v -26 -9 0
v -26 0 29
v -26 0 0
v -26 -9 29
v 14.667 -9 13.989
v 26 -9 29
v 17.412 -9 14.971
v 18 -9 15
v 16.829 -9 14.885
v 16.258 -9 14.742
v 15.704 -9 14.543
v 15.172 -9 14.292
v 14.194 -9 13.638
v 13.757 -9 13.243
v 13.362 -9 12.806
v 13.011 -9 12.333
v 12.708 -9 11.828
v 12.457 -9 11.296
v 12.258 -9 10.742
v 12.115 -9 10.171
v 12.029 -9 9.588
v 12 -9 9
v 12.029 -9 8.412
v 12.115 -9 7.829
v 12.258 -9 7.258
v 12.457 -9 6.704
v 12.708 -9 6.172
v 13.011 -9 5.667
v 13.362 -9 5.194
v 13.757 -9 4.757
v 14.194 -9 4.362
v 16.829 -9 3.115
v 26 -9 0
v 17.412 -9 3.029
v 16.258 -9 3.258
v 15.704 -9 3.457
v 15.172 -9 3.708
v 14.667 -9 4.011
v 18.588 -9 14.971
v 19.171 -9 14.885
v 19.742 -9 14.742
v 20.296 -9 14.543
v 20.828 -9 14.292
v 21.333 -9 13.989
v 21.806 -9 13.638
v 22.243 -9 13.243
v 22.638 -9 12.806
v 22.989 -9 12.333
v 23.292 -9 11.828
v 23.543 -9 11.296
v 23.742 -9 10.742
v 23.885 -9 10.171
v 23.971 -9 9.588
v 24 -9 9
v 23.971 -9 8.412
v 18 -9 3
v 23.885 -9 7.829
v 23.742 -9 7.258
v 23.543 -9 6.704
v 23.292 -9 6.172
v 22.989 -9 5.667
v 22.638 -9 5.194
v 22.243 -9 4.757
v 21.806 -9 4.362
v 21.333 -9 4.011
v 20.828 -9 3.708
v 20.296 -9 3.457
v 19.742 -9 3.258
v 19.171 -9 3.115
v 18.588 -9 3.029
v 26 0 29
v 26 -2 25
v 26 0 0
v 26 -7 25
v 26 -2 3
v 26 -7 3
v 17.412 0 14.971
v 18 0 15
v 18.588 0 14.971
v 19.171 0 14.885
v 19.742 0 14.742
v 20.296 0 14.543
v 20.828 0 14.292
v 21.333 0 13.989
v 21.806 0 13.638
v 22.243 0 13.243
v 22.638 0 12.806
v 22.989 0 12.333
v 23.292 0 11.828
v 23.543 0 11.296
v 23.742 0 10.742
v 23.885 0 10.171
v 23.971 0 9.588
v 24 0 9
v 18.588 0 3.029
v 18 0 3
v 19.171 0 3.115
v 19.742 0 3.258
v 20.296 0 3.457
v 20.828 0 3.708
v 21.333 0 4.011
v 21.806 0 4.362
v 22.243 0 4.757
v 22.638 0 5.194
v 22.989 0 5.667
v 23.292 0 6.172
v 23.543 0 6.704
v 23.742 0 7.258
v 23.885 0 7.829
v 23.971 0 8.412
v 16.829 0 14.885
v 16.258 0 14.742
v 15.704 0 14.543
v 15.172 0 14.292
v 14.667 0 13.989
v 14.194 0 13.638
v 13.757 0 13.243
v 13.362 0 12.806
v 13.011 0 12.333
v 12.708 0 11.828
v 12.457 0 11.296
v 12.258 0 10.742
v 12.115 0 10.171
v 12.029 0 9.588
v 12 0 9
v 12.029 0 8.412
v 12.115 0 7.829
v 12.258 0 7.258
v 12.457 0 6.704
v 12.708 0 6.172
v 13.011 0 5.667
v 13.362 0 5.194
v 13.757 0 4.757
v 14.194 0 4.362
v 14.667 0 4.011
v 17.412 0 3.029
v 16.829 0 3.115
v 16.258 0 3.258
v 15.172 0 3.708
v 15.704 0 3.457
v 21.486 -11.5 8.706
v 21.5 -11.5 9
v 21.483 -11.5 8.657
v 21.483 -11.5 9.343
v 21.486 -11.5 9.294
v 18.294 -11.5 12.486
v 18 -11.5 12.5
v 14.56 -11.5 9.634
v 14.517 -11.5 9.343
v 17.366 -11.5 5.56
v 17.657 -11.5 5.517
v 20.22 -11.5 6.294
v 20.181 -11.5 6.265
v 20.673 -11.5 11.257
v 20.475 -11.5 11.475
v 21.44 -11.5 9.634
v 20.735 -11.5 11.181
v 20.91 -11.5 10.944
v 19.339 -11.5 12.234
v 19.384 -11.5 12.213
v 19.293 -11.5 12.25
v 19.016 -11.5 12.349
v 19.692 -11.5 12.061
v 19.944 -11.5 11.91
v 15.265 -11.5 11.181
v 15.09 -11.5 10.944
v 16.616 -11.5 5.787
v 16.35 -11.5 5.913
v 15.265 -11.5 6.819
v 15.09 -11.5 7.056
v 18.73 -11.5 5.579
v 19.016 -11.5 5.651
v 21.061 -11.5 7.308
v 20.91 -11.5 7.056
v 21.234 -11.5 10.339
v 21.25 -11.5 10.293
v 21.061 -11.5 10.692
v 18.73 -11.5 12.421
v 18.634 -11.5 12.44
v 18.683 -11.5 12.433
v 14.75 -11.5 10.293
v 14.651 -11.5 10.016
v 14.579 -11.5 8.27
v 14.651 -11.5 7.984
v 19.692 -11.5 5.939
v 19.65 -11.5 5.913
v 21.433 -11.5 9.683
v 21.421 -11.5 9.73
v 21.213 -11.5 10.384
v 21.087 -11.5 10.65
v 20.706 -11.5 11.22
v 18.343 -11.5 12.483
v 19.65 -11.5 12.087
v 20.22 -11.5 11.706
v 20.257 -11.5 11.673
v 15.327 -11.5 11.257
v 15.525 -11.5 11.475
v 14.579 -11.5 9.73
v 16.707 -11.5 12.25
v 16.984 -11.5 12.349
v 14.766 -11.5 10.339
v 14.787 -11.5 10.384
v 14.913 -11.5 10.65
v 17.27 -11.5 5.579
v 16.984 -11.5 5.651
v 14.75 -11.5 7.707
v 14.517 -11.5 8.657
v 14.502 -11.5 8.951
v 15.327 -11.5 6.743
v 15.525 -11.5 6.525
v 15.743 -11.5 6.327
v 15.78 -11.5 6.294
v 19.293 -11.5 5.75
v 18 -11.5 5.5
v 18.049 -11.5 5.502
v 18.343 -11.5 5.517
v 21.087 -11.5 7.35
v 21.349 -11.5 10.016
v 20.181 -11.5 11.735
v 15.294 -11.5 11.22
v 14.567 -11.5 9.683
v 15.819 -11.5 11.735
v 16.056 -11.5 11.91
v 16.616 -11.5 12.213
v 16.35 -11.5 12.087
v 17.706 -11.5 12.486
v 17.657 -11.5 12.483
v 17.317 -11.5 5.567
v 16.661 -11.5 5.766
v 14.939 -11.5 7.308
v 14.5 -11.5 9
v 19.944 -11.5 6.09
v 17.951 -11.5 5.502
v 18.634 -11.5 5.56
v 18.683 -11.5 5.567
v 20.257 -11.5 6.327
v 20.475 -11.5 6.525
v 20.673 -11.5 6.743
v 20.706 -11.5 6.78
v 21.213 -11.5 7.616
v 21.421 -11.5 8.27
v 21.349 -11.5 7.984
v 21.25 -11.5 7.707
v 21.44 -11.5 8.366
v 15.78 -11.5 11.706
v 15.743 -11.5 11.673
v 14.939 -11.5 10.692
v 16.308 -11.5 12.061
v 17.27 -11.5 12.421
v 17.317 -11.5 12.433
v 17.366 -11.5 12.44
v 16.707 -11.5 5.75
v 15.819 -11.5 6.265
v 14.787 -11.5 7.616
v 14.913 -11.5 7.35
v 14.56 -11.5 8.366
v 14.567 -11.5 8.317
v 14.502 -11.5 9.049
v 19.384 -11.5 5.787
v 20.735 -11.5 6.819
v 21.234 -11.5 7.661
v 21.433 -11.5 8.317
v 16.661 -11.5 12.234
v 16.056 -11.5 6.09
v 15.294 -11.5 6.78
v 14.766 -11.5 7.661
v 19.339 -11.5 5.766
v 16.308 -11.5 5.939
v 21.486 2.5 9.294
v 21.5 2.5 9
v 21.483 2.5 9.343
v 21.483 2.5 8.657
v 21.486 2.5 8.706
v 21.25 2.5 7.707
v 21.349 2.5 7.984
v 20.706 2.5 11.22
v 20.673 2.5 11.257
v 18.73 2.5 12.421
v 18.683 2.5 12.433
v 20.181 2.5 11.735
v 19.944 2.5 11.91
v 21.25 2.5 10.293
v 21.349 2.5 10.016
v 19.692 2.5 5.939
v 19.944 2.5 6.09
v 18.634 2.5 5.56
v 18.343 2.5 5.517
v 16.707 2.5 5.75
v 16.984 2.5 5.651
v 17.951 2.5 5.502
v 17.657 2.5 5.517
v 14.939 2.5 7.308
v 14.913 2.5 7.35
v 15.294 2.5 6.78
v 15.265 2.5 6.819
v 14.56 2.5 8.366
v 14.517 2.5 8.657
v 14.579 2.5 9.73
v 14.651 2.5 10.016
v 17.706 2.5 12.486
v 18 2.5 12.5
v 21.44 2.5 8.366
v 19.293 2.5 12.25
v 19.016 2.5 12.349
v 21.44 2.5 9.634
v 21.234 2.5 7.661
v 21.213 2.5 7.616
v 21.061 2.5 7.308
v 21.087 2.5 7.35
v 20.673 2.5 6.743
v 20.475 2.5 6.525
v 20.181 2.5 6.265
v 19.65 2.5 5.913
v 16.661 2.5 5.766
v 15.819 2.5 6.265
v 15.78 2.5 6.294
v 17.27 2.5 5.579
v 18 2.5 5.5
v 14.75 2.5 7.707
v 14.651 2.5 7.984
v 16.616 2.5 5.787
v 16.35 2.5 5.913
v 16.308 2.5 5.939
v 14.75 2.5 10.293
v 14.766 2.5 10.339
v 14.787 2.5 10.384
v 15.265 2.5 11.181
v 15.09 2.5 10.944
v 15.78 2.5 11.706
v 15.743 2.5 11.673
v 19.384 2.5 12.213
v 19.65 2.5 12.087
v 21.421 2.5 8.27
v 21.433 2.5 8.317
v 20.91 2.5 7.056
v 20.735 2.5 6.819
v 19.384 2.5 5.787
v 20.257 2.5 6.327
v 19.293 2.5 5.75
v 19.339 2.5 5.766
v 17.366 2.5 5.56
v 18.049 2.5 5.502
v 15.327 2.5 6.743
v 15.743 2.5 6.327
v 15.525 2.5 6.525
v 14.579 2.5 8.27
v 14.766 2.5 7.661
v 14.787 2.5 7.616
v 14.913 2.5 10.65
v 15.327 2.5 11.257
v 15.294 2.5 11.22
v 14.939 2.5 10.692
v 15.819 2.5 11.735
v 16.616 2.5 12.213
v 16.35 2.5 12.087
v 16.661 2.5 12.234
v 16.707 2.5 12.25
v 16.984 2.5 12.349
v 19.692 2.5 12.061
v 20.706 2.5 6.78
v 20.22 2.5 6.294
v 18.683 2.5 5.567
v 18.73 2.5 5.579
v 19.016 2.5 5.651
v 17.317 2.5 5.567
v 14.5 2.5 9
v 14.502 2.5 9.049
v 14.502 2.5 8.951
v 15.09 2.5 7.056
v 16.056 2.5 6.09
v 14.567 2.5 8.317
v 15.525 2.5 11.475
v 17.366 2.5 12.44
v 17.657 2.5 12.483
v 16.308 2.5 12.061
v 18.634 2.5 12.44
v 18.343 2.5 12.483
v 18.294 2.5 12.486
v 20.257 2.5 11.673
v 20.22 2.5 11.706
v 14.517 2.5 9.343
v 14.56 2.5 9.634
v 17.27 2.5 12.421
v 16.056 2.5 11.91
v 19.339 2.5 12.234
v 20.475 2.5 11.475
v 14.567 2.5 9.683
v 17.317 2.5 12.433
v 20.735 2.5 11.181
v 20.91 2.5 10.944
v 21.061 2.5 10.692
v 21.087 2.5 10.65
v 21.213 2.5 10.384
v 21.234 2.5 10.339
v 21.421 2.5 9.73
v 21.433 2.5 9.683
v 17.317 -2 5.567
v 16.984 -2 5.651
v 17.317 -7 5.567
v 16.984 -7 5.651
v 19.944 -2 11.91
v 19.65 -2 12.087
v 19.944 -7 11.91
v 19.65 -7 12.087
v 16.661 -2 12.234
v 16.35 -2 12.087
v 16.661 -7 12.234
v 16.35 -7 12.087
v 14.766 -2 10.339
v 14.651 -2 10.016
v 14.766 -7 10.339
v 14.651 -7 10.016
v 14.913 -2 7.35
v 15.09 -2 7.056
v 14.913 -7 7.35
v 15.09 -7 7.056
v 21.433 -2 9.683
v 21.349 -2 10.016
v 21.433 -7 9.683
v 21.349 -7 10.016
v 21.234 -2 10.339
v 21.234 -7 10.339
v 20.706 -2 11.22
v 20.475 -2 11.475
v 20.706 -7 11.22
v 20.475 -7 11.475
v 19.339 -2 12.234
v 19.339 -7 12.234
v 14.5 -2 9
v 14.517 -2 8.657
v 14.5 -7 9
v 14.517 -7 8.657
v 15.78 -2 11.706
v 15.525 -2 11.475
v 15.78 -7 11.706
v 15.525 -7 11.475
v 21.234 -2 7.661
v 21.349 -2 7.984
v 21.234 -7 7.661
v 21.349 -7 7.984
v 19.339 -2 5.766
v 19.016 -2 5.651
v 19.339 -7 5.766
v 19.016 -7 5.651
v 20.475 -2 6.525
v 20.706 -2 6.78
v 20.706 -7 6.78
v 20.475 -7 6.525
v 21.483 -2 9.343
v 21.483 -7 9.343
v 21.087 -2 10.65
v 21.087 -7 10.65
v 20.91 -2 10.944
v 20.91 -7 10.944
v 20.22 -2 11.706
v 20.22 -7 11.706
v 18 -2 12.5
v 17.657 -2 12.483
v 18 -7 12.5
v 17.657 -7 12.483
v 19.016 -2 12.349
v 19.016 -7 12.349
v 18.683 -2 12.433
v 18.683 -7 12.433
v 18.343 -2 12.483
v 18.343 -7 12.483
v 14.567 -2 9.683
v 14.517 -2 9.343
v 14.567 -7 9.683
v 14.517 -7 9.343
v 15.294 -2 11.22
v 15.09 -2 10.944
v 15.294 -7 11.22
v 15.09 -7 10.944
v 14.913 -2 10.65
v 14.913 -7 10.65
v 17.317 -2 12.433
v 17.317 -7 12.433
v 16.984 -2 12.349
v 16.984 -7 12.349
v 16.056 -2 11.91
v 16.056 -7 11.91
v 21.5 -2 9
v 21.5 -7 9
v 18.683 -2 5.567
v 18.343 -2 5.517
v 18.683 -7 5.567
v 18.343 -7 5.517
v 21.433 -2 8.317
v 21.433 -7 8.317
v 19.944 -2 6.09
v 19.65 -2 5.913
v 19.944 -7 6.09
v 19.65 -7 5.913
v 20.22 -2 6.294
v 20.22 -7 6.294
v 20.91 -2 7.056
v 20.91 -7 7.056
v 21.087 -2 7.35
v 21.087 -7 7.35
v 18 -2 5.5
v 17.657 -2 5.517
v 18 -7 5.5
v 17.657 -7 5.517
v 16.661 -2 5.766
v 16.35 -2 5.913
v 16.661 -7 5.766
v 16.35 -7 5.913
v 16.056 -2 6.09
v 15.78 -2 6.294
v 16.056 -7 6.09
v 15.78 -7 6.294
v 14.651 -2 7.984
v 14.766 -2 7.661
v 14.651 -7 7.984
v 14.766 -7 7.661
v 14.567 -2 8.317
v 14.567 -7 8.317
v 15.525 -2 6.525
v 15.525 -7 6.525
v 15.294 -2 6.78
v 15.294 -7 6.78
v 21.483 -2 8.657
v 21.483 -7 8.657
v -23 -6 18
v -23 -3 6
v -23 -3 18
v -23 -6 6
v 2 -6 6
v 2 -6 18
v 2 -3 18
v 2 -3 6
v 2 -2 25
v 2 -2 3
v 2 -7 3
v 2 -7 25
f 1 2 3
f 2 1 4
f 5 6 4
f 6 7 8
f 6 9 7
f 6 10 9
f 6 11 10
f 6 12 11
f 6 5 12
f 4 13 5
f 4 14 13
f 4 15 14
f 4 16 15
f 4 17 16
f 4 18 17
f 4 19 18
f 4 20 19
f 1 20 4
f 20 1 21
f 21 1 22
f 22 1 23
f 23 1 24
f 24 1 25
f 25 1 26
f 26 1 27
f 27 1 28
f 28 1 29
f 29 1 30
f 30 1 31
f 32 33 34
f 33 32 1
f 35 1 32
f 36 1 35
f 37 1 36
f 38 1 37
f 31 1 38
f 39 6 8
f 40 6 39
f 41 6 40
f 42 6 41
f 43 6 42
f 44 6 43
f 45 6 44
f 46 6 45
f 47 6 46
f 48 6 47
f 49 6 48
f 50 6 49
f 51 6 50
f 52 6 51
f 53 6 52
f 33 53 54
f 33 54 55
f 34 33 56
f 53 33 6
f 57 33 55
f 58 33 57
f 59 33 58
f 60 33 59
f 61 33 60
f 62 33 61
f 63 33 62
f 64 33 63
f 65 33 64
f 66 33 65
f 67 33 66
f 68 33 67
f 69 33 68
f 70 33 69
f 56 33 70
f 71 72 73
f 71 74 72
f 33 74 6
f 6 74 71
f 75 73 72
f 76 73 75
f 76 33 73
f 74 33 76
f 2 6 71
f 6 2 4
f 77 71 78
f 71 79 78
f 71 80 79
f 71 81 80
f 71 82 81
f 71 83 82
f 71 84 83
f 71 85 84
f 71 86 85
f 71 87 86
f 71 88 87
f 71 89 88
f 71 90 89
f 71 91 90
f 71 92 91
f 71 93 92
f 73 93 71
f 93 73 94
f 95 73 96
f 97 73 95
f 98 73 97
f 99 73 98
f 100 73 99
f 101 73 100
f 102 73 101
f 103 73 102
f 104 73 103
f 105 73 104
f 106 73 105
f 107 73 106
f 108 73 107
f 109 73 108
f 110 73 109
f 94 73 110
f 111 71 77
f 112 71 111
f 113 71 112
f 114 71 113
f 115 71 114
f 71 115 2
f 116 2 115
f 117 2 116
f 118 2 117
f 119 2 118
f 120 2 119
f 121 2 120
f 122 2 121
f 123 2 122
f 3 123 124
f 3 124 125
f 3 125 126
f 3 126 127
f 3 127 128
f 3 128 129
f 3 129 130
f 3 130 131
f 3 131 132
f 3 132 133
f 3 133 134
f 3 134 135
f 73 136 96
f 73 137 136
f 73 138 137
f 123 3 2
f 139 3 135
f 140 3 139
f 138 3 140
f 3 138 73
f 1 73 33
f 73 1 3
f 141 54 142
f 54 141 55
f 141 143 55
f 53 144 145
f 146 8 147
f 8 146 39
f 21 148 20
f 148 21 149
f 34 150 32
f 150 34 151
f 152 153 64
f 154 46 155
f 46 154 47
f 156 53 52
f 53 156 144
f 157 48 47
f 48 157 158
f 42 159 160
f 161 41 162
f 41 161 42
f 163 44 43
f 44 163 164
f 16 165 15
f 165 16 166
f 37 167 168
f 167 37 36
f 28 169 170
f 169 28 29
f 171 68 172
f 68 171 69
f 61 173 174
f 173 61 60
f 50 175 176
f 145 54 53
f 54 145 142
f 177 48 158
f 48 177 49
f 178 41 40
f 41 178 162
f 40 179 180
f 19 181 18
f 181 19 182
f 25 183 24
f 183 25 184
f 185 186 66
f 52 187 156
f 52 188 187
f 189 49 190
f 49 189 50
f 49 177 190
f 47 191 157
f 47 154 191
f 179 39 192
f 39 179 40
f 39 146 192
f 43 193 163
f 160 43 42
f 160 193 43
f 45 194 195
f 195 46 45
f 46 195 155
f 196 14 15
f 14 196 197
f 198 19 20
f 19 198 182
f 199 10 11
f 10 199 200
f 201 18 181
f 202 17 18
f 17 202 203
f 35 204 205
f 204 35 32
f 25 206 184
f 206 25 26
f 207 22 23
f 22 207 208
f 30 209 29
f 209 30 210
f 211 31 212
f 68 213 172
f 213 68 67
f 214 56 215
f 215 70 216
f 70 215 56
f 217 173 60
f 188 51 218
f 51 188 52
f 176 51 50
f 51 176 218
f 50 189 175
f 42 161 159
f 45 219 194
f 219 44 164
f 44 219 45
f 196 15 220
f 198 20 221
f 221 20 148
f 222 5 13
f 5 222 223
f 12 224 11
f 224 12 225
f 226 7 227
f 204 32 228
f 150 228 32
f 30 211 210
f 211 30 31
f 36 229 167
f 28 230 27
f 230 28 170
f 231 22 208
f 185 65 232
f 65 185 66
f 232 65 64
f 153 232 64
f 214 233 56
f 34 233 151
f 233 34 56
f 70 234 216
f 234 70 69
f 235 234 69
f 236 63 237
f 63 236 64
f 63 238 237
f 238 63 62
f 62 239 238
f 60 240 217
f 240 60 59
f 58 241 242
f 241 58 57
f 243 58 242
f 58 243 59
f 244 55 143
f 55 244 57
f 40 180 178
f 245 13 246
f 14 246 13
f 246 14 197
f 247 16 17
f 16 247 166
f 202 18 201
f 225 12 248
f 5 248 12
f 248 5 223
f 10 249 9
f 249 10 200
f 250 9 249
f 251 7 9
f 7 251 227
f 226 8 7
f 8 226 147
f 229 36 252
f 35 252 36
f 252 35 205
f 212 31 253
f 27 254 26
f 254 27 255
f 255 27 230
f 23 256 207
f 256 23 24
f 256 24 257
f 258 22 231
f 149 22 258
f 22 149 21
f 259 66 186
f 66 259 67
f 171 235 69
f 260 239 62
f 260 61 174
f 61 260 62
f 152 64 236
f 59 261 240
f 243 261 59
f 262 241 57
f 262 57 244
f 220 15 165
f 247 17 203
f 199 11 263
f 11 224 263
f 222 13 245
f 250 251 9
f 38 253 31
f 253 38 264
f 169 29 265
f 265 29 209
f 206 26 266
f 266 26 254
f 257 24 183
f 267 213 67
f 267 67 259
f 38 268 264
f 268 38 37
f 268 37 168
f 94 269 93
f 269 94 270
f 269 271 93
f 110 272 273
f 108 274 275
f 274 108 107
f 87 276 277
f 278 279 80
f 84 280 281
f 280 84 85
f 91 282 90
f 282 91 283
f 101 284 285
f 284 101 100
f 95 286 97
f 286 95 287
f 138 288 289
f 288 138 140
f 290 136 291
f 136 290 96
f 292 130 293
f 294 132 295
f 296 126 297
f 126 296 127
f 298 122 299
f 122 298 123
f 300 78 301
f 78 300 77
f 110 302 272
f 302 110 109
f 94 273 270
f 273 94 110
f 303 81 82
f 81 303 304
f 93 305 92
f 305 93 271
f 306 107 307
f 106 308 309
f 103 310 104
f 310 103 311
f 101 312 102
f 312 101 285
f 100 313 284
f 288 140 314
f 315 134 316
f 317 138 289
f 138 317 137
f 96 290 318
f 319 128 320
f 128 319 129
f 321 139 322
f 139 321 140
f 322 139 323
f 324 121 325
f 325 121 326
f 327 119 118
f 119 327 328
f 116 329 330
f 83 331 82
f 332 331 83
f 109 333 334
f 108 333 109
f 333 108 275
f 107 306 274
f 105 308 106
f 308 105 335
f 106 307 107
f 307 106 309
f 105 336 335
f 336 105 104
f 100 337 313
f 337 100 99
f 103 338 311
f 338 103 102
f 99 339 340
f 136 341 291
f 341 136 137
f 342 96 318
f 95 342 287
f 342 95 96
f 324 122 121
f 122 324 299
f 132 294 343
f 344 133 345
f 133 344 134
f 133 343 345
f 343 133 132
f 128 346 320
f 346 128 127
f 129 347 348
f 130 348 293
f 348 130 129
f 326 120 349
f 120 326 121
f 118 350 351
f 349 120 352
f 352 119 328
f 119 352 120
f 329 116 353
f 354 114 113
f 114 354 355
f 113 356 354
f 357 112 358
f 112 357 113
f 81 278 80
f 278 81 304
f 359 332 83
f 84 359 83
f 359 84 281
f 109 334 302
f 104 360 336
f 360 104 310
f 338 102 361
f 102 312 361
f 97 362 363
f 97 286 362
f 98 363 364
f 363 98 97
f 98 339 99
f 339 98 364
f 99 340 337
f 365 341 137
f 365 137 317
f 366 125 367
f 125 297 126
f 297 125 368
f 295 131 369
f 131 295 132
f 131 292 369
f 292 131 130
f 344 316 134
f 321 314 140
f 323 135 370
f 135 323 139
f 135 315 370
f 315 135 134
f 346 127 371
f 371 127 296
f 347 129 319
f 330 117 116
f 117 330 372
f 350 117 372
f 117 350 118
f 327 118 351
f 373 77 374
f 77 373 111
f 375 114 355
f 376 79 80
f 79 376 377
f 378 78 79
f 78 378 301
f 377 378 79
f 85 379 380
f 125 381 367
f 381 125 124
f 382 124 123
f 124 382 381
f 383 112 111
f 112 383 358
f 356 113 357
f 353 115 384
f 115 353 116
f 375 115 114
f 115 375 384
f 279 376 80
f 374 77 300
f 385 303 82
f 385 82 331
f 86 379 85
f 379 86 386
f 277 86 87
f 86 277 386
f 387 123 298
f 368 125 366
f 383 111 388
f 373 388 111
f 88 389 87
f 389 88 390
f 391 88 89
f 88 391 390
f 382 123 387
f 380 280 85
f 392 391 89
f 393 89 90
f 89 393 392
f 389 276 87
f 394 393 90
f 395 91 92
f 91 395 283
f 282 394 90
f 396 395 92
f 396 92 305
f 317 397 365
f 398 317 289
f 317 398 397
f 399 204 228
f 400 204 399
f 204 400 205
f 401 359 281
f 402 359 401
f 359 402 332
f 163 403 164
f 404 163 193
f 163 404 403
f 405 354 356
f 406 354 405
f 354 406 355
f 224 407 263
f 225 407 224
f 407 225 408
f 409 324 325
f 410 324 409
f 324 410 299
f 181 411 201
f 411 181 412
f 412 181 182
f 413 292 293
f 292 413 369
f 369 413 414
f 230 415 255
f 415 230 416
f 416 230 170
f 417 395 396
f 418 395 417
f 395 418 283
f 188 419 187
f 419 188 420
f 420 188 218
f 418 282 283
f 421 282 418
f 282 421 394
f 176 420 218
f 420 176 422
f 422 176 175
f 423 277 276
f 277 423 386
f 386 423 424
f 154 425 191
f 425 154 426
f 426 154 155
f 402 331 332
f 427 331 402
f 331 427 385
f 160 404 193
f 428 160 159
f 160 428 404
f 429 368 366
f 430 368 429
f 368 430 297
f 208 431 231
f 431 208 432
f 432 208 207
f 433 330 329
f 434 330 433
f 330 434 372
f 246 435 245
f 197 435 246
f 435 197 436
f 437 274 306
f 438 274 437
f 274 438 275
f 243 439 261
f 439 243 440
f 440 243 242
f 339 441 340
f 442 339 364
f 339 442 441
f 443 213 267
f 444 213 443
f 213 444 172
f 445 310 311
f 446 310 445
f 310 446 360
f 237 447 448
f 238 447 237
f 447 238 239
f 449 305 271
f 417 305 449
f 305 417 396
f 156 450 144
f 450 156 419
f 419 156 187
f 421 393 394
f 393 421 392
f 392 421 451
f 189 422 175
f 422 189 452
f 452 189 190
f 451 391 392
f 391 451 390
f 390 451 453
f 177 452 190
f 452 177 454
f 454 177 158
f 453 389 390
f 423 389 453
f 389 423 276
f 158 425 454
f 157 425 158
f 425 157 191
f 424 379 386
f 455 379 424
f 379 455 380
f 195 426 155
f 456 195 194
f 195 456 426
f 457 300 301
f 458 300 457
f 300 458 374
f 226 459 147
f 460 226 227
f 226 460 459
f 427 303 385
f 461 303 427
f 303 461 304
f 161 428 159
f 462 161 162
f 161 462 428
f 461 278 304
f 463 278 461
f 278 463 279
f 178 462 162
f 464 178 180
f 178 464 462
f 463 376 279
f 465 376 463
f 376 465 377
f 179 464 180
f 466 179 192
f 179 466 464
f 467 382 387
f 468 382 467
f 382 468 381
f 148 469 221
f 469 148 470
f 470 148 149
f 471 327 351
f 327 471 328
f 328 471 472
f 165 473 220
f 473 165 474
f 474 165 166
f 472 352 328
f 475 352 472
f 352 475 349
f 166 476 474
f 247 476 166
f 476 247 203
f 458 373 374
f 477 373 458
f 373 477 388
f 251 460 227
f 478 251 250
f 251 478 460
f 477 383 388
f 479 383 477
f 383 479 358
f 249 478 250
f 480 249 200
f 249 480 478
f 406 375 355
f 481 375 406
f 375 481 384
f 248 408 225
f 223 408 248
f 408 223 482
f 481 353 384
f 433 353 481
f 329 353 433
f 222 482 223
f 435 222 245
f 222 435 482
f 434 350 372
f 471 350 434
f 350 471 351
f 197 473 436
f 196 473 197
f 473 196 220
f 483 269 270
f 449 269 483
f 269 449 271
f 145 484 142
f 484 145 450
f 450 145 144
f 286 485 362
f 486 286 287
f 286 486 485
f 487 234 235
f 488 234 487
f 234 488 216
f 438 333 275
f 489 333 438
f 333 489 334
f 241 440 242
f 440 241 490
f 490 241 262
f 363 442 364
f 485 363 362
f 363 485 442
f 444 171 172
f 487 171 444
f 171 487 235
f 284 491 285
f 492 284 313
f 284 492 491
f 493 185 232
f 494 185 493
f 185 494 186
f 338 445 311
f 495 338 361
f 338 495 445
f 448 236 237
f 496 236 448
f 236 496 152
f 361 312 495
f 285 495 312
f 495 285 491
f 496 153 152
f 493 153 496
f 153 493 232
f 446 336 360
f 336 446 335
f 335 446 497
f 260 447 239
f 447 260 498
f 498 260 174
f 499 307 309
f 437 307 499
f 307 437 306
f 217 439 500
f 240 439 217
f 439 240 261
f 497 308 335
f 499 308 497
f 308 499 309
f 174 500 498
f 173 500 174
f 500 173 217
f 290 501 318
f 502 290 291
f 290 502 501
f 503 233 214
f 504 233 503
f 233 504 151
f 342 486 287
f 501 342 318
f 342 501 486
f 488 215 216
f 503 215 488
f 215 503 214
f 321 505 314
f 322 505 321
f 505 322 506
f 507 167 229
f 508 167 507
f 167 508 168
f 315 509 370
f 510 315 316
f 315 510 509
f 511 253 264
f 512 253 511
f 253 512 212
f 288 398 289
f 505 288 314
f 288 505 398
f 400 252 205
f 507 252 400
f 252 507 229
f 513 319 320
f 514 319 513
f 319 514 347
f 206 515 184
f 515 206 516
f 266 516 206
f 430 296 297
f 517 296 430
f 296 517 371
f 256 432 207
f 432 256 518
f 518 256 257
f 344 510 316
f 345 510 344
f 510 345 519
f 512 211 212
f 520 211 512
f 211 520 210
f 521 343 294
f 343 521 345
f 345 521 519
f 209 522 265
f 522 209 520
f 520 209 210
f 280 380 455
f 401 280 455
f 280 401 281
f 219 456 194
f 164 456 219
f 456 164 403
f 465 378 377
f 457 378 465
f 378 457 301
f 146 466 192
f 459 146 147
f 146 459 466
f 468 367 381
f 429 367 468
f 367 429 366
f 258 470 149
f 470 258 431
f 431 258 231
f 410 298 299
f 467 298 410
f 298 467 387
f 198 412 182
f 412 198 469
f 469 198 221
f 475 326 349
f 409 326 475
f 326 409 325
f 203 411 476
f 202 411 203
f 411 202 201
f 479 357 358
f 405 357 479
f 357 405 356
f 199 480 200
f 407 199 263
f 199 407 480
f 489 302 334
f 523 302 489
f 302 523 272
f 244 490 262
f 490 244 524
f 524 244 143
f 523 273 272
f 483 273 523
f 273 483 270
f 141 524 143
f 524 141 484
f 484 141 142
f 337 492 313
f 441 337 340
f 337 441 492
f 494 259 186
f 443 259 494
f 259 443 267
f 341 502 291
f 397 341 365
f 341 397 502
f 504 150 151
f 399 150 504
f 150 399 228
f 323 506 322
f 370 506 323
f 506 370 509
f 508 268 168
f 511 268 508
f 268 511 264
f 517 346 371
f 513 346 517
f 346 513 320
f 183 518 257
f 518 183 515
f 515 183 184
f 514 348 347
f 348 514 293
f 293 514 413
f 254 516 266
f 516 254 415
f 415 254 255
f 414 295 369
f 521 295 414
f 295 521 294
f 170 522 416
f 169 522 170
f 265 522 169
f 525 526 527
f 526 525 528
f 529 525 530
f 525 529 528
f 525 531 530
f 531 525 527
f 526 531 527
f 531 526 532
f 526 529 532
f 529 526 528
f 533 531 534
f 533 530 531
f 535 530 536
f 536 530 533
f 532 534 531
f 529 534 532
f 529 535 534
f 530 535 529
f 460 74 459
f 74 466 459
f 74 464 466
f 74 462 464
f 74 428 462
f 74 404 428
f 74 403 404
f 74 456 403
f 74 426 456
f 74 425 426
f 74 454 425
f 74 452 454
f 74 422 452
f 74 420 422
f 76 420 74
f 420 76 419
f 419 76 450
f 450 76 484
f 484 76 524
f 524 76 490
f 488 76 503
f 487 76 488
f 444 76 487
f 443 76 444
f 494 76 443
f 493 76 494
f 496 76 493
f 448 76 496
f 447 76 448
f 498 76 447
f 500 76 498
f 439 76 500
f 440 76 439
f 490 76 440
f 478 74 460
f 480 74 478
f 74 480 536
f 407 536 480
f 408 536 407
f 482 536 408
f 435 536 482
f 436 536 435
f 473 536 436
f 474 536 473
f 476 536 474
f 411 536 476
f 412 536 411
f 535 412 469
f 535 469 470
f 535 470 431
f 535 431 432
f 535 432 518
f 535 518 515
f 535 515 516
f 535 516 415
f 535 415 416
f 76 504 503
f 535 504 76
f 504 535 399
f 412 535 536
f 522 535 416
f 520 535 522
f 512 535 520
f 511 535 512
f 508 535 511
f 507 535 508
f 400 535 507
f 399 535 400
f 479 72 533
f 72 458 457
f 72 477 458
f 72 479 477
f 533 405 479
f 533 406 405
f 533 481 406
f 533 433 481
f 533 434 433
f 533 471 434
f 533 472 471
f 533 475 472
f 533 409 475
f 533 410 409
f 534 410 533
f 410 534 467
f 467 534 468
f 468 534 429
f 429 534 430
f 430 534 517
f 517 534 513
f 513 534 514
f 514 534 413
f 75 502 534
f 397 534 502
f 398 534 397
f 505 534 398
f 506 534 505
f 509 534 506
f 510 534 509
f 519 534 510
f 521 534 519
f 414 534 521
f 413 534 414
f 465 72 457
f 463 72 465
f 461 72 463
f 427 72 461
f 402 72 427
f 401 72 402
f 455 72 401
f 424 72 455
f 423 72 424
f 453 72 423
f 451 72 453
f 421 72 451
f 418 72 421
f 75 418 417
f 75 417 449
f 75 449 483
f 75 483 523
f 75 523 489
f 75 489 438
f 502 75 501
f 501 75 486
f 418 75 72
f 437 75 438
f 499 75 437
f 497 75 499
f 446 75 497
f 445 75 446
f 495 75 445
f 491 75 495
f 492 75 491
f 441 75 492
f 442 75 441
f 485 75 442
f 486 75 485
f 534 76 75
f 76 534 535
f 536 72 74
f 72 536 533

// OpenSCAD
$fa=32;
$fn = $preview ? 32 : 64;

rand=3;
k_global=[
    46.6,
    22,
    3
    ];
k_loch=[
    5.35/2,
    37.5+2.675,
    3.3+2.675,
    ];
k_schaft=[
    27.4,
    10,
    2.5
    ];
k_schaft_offset=[
    0,
    4.5
    ];
zugabe=3;
            

rotate([90,0,0]){
 translate([-(46+2*rand)/2,0,0]){      
        difference(){
            union(){
                cube([
                    46+2*rand,
                    23+2*rand,
                    3+2*rand
                    ],false);
                
                translate([rand+41,rand+6,14]){
                    rotate([180,0,0]){
                    cylinder(
                        5,
                        r1=2,
                        r2=6,
                        false);
                    }
                    }
                translate([rand+41,rand+6,-5]){
                    cylinder(
                        5,
                        r1=8,
                        r2=6,
                        false);
                    }
                }
            union(){
                translate([rand+41,rand+6,-5]){
                   # cylinder(
                    20,
                    r=3.5,
                    true);
                    }
                translate([rand,rand+3,rand]){
                    cube(
                    [26,12,3],
                    false);
                    }
                translate([rand+25,rand,-1+rand]){
                    cube([
                    19+rand+zugabe,
                    22,
                    5
                    ],false);
                    }
                
               }
           }
       }
}
